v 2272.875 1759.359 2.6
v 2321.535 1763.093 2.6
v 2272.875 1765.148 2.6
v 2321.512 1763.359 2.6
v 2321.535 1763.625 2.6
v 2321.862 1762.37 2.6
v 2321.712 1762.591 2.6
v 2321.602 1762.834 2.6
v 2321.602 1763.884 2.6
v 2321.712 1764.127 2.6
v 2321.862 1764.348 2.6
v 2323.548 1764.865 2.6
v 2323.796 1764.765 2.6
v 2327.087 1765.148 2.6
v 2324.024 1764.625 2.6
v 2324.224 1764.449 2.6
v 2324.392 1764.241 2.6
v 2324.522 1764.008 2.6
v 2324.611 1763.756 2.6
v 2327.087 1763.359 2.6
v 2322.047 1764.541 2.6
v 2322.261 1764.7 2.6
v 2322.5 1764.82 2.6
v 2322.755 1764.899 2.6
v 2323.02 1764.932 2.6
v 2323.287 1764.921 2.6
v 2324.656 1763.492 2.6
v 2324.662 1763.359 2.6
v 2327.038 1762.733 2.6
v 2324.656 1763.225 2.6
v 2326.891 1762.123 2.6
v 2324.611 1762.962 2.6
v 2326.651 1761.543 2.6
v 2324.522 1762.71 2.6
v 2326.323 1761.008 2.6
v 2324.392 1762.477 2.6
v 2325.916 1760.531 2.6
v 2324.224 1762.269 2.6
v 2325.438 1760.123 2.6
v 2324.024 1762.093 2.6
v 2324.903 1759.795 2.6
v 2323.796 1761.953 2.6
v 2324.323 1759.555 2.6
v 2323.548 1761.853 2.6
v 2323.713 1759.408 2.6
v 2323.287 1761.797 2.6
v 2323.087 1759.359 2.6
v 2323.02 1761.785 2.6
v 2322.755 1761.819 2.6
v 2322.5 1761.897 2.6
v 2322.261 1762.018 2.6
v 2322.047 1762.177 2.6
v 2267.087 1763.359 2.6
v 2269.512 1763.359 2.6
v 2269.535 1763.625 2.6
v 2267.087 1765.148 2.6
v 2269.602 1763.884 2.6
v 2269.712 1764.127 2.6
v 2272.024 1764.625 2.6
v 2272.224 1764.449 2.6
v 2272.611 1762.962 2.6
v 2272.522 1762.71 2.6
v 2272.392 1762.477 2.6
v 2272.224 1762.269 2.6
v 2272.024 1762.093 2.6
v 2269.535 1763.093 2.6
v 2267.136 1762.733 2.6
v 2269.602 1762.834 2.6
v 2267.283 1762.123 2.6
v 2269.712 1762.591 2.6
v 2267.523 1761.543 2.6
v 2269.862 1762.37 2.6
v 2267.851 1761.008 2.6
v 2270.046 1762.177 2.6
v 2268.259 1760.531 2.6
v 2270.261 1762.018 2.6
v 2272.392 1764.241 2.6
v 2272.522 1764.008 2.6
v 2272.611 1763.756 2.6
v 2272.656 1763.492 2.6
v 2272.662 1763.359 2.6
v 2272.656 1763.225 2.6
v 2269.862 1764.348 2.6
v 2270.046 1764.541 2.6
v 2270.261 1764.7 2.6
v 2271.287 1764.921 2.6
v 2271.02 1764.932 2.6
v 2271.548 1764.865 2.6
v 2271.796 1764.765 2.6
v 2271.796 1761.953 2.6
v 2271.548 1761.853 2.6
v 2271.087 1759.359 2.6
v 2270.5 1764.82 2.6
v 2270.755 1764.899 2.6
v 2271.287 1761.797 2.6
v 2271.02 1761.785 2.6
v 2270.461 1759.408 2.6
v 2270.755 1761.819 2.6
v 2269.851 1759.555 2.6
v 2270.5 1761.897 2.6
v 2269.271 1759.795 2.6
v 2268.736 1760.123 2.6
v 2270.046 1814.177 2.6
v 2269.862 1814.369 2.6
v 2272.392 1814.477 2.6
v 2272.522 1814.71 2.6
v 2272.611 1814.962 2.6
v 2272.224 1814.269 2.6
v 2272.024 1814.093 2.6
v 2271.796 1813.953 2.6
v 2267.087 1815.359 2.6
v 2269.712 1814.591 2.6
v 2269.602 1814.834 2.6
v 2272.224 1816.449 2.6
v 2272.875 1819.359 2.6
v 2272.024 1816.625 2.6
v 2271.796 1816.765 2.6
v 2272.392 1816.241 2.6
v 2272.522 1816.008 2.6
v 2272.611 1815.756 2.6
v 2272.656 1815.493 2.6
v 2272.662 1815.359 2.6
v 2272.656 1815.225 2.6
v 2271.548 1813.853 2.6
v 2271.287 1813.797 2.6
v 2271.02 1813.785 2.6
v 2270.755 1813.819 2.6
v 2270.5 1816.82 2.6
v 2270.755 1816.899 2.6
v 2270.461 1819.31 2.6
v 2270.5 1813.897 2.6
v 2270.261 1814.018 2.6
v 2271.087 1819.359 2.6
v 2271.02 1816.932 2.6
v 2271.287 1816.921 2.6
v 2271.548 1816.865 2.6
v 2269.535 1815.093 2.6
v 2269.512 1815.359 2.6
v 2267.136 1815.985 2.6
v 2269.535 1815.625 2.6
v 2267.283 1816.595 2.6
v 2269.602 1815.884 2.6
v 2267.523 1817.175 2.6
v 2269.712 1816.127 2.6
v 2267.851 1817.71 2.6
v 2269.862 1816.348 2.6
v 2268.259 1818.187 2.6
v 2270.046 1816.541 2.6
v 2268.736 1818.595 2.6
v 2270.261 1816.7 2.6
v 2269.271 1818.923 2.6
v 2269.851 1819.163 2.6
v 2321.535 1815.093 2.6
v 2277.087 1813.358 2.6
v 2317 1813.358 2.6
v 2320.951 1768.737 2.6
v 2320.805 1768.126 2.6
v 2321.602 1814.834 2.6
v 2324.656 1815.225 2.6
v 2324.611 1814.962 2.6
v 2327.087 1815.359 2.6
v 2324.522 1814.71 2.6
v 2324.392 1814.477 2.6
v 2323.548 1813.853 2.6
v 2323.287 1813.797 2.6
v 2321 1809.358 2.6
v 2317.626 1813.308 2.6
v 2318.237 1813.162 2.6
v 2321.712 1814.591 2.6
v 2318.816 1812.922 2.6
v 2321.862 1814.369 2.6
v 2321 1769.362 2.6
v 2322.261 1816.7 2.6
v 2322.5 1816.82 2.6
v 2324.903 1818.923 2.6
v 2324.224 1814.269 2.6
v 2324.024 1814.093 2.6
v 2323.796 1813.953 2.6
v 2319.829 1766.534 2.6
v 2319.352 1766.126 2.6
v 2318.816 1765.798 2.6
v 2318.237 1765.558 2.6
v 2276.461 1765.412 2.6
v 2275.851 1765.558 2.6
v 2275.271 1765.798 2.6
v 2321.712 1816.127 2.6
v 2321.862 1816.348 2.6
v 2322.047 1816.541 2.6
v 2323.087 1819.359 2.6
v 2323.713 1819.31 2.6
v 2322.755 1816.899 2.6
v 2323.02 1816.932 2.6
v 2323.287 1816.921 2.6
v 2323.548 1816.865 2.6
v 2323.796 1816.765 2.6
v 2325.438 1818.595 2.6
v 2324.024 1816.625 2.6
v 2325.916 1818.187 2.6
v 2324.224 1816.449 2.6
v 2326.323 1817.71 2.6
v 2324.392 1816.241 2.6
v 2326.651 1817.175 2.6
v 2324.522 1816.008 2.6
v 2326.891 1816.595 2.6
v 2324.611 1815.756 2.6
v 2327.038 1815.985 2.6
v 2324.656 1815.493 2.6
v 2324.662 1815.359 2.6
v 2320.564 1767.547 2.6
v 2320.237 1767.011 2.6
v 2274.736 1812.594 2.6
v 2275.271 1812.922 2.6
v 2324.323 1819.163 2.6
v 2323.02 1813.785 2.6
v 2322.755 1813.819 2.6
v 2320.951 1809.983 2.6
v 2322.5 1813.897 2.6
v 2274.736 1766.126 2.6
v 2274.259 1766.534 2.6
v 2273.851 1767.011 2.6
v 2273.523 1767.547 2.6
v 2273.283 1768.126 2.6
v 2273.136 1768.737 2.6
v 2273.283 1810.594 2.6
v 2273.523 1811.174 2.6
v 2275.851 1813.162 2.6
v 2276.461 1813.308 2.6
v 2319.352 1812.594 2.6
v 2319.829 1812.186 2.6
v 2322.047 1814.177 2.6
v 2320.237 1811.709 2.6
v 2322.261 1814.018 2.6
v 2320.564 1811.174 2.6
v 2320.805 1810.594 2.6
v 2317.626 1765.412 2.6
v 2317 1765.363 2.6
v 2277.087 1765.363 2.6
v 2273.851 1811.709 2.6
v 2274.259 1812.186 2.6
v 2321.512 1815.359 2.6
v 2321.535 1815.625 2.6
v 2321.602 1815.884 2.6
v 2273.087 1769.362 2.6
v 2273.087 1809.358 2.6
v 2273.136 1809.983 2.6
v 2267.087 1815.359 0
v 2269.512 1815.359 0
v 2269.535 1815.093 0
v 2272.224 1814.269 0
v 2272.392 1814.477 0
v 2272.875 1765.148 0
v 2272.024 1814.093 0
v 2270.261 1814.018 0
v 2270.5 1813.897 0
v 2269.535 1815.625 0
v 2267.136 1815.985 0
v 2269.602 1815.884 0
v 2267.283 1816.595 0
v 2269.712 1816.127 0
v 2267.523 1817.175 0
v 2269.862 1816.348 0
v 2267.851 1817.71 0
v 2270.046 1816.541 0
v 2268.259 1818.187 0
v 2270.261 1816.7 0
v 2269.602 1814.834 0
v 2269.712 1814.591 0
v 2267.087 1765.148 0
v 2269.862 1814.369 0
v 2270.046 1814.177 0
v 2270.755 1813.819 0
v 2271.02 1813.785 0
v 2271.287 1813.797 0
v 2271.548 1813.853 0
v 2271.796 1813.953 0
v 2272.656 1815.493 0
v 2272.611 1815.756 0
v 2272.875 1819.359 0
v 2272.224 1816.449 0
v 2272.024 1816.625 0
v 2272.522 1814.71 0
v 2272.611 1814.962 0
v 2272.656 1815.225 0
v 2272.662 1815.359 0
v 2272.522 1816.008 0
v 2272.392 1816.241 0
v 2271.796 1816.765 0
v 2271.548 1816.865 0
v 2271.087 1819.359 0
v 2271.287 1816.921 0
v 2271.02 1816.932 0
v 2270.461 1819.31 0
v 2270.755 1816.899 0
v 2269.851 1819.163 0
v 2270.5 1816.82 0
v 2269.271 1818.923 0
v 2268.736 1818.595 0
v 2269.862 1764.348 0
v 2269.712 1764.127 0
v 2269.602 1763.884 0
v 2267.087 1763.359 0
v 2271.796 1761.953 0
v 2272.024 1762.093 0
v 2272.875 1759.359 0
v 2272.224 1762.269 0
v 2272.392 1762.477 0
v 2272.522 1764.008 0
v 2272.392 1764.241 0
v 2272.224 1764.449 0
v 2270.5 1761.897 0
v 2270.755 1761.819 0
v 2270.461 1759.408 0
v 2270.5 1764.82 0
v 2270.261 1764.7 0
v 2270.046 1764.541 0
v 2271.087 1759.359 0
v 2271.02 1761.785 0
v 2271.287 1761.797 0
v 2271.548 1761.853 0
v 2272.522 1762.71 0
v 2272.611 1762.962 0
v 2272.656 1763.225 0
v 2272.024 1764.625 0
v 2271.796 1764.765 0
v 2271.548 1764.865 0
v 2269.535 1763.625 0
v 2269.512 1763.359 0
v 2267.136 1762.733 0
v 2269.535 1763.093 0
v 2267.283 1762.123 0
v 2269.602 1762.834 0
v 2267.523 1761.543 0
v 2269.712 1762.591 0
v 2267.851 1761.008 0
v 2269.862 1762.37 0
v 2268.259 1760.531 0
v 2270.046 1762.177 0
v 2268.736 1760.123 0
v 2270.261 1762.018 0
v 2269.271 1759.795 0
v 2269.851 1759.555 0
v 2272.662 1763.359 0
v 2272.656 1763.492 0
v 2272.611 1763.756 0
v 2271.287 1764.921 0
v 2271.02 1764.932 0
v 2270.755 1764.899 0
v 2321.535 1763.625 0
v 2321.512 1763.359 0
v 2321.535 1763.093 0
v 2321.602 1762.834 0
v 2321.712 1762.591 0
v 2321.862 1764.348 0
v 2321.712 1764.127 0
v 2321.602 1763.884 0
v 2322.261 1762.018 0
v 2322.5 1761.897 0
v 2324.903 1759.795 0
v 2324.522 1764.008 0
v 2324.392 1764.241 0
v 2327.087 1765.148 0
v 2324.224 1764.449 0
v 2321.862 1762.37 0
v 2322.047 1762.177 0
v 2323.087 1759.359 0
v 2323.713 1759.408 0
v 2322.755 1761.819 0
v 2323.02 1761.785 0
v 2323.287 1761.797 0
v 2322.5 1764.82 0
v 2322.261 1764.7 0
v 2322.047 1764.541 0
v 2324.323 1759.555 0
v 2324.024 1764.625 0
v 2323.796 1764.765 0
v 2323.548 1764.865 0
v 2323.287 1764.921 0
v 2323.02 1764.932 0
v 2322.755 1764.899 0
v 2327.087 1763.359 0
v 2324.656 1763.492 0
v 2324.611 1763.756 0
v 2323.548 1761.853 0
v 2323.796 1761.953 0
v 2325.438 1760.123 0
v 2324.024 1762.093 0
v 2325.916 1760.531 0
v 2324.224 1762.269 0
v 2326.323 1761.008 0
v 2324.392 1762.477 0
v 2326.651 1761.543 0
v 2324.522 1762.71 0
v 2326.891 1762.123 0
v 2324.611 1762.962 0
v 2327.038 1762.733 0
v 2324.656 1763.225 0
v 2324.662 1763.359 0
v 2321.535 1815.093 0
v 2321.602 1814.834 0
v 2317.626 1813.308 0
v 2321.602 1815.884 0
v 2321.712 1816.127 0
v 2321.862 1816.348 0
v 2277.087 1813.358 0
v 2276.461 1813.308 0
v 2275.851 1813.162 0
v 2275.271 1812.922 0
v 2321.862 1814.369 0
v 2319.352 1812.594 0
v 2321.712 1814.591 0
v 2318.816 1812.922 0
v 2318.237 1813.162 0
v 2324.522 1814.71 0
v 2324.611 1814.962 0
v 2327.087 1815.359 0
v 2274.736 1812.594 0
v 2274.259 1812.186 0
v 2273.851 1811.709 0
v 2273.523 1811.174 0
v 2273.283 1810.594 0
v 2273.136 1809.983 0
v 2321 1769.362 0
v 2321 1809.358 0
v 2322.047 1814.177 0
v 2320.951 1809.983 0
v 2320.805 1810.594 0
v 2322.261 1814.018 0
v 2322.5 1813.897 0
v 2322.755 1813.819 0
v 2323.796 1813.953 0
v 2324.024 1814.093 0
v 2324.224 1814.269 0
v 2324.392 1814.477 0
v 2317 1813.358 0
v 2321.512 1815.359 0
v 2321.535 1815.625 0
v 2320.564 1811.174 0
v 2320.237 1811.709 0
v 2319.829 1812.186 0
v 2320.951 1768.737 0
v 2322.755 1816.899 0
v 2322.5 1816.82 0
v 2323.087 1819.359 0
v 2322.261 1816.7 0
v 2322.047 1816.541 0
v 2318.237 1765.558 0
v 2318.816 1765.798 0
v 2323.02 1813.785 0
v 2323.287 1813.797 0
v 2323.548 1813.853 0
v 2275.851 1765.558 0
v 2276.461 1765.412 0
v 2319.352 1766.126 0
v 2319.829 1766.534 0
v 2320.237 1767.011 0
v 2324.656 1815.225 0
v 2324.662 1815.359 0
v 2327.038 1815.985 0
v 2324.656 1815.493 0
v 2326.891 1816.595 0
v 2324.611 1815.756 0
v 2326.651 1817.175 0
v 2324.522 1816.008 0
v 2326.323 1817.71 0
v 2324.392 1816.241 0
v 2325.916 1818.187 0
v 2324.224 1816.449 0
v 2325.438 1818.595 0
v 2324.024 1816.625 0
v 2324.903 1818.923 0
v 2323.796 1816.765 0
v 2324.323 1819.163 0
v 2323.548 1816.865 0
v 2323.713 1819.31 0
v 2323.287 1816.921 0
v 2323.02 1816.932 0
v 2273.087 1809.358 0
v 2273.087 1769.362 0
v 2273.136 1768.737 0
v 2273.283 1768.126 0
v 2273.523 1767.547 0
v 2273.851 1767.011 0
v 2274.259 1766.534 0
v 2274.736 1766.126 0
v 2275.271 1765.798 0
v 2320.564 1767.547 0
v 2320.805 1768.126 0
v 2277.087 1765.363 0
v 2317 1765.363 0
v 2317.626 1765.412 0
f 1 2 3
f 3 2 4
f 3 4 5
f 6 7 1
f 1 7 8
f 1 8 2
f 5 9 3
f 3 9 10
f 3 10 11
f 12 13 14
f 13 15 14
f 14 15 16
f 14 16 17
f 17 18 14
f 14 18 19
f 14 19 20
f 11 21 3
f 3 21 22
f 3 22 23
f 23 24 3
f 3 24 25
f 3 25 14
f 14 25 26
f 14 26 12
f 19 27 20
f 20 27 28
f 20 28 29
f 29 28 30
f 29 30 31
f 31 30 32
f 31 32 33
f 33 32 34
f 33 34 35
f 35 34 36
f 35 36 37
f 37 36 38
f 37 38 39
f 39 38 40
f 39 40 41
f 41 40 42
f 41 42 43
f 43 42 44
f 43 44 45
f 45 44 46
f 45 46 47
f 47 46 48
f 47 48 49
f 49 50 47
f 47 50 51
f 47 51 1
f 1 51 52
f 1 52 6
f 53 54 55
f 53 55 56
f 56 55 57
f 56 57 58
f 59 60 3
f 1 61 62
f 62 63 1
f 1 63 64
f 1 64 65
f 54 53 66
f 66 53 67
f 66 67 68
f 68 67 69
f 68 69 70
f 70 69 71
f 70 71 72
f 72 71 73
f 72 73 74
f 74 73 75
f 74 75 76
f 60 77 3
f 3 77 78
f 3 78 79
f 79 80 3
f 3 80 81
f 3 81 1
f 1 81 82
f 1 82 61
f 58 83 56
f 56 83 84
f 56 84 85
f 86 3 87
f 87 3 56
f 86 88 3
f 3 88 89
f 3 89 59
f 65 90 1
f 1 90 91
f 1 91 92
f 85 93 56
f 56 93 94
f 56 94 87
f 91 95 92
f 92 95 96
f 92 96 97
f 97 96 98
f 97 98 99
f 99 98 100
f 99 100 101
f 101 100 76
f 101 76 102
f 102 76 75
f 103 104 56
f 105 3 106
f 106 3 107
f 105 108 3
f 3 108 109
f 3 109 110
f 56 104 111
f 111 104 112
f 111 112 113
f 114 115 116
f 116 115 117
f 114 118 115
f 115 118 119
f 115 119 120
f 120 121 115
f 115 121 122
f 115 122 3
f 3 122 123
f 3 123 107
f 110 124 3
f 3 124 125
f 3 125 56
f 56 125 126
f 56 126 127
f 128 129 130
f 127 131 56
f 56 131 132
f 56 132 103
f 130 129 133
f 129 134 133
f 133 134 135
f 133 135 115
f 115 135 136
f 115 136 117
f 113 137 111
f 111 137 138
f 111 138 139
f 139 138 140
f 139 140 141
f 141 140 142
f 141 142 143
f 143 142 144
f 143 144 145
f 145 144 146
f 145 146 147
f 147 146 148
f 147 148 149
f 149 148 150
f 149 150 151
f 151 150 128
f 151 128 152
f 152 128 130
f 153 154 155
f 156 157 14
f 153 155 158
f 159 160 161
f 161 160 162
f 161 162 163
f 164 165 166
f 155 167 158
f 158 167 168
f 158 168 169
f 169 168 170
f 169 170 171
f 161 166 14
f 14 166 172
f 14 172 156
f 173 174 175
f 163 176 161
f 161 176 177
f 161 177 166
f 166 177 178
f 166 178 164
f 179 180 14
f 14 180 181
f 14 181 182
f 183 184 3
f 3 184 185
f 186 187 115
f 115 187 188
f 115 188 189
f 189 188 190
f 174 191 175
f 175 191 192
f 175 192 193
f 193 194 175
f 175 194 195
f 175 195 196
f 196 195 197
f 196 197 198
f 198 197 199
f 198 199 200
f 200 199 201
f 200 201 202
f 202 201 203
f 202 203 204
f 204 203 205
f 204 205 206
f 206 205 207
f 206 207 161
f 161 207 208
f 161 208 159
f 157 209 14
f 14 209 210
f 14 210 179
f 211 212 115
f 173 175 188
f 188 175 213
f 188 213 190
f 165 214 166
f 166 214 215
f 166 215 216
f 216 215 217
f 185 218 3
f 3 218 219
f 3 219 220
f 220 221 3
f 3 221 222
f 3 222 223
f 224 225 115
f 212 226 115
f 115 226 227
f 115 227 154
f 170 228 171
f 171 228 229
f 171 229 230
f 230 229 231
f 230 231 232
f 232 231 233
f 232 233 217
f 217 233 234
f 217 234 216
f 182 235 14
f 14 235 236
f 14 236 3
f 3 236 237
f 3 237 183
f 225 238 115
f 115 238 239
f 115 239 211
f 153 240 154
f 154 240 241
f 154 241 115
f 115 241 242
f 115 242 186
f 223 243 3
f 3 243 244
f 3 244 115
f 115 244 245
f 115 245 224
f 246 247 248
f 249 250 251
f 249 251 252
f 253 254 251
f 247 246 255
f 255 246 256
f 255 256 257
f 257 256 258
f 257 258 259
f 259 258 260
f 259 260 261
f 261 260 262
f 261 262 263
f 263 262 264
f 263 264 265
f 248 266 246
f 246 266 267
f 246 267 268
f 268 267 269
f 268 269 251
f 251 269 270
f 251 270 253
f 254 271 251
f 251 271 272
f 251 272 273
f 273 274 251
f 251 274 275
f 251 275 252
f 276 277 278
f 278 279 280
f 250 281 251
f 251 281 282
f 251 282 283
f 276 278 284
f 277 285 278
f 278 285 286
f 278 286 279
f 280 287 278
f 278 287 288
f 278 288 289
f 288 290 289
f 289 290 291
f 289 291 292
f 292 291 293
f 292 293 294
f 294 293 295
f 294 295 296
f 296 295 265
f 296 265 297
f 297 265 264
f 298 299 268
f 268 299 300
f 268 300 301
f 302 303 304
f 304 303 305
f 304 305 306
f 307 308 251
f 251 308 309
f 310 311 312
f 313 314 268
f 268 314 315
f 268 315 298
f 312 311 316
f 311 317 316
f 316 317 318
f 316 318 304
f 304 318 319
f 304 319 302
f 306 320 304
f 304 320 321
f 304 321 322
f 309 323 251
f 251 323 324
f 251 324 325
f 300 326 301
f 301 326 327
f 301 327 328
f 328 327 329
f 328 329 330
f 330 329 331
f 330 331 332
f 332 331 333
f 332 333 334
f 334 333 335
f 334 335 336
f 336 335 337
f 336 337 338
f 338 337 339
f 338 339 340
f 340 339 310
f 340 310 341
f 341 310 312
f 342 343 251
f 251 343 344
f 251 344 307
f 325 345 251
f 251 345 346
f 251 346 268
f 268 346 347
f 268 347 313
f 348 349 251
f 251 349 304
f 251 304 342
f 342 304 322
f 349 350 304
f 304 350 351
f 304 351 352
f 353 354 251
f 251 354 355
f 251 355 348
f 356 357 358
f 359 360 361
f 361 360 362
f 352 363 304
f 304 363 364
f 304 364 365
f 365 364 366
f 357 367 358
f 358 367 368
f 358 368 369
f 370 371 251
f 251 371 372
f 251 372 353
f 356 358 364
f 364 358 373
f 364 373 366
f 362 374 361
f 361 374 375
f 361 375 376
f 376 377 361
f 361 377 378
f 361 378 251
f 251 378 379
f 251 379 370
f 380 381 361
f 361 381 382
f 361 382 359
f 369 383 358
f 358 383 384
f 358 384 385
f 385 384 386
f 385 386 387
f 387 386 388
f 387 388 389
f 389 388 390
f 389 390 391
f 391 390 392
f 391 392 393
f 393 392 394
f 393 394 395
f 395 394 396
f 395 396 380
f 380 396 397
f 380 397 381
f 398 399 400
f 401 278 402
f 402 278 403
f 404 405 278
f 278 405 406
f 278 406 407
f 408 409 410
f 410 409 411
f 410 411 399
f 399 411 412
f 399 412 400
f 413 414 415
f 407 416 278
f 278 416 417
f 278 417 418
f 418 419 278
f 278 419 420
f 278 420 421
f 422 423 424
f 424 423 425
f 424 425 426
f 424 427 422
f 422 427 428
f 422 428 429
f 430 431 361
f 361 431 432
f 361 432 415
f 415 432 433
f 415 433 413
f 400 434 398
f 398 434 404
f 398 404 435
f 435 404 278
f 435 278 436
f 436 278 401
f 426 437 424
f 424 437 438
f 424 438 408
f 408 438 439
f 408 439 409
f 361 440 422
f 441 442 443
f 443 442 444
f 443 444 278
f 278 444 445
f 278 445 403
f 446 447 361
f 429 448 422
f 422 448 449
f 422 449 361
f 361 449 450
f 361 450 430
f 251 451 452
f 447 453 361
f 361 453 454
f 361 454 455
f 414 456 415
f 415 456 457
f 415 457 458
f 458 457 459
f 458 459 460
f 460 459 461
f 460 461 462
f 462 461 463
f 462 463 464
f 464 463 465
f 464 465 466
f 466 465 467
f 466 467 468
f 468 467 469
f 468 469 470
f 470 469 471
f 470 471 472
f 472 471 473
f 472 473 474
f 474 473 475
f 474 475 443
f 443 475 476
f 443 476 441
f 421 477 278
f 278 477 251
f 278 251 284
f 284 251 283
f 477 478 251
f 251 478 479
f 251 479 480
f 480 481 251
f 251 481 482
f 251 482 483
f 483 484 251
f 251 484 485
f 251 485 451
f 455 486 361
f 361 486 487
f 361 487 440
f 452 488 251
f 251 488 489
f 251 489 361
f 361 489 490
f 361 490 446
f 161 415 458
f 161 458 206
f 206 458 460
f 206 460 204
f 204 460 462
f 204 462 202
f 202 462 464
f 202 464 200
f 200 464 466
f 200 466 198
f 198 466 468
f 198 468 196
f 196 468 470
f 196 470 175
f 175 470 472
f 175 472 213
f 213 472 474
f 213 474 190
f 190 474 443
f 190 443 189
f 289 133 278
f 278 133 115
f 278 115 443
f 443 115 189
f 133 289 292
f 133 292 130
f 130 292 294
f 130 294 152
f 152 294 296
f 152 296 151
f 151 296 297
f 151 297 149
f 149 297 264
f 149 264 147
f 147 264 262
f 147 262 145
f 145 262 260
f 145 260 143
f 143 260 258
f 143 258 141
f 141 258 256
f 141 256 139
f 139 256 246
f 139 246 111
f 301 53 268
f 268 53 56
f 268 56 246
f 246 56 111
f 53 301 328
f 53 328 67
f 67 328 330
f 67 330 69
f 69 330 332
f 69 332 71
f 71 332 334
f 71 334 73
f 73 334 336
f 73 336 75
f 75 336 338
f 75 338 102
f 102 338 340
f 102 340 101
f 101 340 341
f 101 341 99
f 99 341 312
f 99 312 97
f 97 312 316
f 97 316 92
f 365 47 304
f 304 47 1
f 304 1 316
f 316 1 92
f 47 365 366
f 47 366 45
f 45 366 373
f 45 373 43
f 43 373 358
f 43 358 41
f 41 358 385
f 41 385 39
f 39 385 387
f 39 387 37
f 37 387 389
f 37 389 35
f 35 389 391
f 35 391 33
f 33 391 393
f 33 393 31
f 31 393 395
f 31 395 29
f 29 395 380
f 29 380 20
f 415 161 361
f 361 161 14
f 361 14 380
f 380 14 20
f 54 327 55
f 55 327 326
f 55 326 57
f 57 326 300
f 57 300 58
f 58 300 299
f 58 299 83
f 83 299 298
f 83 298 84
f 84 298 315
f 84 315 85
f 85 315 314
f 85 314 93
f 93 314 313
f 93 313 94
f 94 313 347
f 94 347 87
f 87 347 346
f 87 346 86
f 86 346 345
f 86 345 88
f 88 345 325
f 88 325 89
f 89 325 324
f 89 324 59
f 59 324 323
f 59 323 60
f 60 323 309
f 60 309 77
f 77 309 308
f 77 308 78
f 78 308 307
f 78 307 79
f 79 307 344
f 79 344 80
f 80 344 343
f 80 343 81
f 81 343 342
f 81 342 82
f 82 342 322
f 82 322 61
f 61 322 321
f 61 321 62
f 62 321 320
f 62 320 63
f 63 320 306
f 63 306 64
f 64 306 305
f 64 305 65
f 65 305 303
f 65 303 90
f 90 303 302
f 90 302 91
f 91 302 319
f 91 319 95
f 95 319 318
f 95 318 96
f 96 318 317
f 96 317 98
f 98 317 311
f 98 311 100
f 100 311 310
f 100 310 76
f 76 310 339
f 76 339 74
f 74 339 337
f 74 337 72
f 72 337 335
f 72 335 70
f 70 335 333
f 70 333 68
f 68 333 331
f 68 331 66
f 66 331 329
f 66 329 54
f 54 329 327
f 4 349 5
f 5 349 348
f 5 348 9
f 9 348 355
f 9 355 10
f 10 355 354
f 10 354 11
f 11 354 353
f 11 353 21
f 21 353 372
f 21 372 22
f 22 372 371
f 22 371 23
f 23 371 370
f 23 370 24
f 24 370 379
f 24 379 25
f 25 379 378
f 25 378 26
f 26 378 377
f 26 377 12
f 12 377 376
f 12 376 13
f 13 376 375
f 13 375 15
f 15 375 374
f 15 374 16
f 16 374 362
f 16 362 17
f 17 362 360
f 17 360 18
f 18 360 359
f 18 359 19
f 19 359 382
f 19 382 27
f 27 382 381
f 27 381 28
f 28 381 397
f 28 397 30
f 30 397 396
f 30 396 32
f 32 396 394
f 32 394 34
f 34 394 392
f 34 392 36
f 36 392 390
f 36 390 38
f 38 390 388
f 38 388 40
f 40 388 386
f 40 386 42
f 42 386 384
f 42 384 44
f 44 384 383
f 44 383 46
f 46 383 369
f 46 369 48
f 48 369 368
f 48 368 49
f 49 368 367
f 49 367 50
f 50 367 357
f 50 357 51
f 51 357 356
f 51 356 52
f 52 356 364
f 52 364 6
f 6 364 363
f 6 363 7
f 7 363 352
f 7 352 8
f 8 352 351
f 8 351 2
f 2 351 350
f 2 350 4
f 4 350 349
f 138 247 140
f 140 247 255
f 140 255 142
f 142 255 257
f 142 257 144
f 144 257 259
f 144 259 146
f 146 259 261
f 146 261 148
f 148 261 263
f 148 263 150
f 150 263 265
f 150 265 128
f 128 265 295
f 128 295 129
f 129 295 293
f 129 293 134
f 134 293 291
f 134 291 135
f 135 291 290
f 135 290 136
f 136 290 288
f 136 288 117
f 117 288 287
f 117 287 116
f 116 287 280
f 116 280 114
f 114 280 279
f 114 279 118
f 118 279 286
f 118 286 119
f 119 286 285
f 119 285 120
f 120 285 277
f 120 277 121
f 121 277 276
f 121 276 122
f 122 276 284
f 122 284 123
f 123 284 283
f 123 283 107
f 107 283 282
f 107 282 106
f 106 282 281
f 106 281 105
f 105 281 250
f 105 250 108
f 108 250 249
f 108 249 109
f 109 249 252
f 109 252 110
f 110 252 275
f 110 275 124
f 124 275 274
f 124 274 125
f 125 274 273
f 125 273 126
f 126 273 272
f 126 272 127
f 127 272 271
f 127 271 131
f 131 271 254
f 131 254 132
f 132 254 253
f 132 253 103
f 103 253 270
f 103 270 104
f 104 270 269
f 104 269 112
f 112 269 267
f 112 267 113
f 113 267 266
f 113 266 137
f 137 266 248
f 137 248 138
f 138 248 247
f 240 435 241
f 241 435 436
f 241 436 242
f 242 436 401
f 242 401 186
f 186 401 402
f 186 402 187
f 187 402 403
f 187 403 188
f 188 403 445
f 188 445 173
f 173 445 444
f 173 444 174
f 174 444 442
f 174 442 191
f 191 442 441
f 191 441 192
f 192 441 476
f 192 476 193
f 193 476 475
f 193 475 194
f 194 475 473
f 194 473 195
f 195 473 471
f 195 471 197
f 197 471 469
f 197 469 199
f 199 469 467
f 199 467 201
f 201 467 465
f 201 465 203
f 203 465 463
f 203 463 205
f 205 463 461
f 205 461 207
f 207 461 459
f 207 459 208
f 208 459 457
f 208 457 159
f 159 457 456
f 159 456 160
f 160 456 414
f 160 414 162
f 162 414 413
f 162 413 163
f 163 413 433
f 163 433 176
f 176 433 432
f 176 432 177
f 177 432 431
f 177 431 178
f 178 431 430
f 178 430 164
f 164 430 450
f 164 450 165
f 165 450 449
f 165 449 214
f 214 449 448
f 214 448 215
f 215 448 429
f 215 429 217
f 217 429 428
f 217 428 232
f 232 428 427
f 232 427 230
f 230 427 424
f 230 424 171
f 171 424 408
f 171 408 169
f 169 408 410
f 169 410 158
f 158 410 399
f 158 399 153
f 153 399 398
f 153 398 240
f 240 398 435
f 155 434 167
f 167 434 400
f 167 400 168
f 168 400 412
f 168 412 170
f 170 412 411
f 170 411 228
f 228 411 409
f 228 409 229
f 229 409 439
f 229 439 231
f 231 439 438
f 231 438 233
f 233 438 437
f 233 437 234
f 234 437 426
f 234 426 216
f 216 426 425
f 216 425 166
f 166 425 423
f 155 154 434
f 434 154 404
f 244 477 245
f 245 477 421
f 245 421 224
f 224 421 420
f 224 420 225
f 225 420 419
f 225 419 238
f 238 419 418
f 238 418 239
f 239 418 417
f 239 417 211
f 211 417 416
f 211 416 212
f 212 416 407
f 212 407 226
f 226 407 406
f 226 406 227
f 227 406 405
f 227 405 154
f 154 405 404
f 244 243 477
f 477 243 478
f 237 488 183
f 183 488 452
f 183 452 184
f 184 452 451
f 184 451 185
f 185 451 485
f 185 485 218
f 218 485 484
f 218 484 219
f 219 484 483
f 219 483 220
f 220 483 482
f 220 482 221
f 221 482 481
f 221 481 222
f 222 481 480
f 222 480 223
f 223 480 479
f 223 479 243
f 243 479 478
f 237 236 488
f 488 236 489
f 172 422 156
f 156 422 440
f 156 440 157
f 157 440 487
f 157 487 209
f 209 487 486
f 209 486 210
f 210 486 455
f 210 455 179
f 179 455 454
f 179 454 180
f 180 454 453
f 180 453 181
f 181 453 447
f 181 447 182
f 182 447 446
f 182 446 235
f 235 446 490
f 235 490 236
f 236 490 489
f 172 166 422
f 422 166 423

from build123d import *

# Parameters (mm, degrees)
MODEL_R         = 1.575
EXTRUDE_1_DEPTH = 2.6


with BuildPart() as part:
    # Model → 凸台-拉伸1 (new body)
    with BuildSketch(Plane.XY):
        with BuildLine():
            Line((2267.087112804, 1815.358905475), (2267.087112804, 1763.358905475))
            ThreePointArc((2267.087112804, 1763.358905475), (2268.25868568, 1760.53047835), (2271.087112804, 1759.358905475))
            Line((2271.087112804, 1759.358905475), (2323.087112804, 1759.358905475))
            ThreePointArc((2323.087112804, 1759.358905475), (2325.915539929, 1760.53047835), (2327.087112804, 1763.358905475))
            Line((2327.087112804, 1763.358905475), (2327.087112804, 1815.358905475))
            ThreePointArc((2327.087112804, 1815.358905475), (2325.915539929, 1818.187332599), (2323.087112804, 1819.358905475))
            Line((2323.087112804, 1819.358905475), (2271.087112804, 1819.358905475))
            ThreePointArc((2271.087112804, 1819.358905475), (2268.25868568, 1818.187332599), (2267.087112804, 1815.358905475))
        make_face()
        with Locations((2271.087112804, 1763.358905475)):
            Circle(MODEL_R, mode=Mode.SUBTRACT)
        with Locations((2323.087112804, 1763.358905475)):
            Circle(MODEL_R, mode=Mode.SUBTRACT)
        with Locations((2271.087112804, 1815.358905475)):
            Circle(MODEL_R, mode=Mode.SUBTRACT)
        with Locations((2323.087112804, 1815.358905475)):
            Circle(MODEL_R, mode=Mode.SUBTRACT)
        with BuildLine():
            Line((2295.483483019, 1813.357611428), (2317.000502455, 1813.357611428))
            ThreePointArc((2317.000502455, 1813.357611428), (2319.828929579, 1812.186038553), (2321.000502455, 1809.357611428))
            Line((2321.000502455, 1809.357611428), (2321.000502455, 1769.362445027))
            ThreePointArc((2321.000502455, 1769.362445027), (2319.828929579, 1766.534017903), (2317.000502455, 1765.362445027))
            Line((2317.000502455, 1765.362445027), (2277.087112804, 1765.362445027))
            ThreePointArc((2277.087112804, 1765.362445027), (2274.25868568, 1766.534017903), (2273.087112804, 1769.362445027))
            Line((2273.087112804, 1769.362445027), (2273.087112804, 1809.357611428))
            ThreePointArc((2273.087112804, 1809.357611428), (2274.25868568, 1812.186038553), (2277.087112804, 1813.357611428))
            Line((2277.087112804, 1813.357611428), (2295.483483019, 1813.357611428))
        make_face(mode=Mode.SUBTRACT)
    extrude(amount=EXTRUDE_1_DEPTH)


solid = part.part
